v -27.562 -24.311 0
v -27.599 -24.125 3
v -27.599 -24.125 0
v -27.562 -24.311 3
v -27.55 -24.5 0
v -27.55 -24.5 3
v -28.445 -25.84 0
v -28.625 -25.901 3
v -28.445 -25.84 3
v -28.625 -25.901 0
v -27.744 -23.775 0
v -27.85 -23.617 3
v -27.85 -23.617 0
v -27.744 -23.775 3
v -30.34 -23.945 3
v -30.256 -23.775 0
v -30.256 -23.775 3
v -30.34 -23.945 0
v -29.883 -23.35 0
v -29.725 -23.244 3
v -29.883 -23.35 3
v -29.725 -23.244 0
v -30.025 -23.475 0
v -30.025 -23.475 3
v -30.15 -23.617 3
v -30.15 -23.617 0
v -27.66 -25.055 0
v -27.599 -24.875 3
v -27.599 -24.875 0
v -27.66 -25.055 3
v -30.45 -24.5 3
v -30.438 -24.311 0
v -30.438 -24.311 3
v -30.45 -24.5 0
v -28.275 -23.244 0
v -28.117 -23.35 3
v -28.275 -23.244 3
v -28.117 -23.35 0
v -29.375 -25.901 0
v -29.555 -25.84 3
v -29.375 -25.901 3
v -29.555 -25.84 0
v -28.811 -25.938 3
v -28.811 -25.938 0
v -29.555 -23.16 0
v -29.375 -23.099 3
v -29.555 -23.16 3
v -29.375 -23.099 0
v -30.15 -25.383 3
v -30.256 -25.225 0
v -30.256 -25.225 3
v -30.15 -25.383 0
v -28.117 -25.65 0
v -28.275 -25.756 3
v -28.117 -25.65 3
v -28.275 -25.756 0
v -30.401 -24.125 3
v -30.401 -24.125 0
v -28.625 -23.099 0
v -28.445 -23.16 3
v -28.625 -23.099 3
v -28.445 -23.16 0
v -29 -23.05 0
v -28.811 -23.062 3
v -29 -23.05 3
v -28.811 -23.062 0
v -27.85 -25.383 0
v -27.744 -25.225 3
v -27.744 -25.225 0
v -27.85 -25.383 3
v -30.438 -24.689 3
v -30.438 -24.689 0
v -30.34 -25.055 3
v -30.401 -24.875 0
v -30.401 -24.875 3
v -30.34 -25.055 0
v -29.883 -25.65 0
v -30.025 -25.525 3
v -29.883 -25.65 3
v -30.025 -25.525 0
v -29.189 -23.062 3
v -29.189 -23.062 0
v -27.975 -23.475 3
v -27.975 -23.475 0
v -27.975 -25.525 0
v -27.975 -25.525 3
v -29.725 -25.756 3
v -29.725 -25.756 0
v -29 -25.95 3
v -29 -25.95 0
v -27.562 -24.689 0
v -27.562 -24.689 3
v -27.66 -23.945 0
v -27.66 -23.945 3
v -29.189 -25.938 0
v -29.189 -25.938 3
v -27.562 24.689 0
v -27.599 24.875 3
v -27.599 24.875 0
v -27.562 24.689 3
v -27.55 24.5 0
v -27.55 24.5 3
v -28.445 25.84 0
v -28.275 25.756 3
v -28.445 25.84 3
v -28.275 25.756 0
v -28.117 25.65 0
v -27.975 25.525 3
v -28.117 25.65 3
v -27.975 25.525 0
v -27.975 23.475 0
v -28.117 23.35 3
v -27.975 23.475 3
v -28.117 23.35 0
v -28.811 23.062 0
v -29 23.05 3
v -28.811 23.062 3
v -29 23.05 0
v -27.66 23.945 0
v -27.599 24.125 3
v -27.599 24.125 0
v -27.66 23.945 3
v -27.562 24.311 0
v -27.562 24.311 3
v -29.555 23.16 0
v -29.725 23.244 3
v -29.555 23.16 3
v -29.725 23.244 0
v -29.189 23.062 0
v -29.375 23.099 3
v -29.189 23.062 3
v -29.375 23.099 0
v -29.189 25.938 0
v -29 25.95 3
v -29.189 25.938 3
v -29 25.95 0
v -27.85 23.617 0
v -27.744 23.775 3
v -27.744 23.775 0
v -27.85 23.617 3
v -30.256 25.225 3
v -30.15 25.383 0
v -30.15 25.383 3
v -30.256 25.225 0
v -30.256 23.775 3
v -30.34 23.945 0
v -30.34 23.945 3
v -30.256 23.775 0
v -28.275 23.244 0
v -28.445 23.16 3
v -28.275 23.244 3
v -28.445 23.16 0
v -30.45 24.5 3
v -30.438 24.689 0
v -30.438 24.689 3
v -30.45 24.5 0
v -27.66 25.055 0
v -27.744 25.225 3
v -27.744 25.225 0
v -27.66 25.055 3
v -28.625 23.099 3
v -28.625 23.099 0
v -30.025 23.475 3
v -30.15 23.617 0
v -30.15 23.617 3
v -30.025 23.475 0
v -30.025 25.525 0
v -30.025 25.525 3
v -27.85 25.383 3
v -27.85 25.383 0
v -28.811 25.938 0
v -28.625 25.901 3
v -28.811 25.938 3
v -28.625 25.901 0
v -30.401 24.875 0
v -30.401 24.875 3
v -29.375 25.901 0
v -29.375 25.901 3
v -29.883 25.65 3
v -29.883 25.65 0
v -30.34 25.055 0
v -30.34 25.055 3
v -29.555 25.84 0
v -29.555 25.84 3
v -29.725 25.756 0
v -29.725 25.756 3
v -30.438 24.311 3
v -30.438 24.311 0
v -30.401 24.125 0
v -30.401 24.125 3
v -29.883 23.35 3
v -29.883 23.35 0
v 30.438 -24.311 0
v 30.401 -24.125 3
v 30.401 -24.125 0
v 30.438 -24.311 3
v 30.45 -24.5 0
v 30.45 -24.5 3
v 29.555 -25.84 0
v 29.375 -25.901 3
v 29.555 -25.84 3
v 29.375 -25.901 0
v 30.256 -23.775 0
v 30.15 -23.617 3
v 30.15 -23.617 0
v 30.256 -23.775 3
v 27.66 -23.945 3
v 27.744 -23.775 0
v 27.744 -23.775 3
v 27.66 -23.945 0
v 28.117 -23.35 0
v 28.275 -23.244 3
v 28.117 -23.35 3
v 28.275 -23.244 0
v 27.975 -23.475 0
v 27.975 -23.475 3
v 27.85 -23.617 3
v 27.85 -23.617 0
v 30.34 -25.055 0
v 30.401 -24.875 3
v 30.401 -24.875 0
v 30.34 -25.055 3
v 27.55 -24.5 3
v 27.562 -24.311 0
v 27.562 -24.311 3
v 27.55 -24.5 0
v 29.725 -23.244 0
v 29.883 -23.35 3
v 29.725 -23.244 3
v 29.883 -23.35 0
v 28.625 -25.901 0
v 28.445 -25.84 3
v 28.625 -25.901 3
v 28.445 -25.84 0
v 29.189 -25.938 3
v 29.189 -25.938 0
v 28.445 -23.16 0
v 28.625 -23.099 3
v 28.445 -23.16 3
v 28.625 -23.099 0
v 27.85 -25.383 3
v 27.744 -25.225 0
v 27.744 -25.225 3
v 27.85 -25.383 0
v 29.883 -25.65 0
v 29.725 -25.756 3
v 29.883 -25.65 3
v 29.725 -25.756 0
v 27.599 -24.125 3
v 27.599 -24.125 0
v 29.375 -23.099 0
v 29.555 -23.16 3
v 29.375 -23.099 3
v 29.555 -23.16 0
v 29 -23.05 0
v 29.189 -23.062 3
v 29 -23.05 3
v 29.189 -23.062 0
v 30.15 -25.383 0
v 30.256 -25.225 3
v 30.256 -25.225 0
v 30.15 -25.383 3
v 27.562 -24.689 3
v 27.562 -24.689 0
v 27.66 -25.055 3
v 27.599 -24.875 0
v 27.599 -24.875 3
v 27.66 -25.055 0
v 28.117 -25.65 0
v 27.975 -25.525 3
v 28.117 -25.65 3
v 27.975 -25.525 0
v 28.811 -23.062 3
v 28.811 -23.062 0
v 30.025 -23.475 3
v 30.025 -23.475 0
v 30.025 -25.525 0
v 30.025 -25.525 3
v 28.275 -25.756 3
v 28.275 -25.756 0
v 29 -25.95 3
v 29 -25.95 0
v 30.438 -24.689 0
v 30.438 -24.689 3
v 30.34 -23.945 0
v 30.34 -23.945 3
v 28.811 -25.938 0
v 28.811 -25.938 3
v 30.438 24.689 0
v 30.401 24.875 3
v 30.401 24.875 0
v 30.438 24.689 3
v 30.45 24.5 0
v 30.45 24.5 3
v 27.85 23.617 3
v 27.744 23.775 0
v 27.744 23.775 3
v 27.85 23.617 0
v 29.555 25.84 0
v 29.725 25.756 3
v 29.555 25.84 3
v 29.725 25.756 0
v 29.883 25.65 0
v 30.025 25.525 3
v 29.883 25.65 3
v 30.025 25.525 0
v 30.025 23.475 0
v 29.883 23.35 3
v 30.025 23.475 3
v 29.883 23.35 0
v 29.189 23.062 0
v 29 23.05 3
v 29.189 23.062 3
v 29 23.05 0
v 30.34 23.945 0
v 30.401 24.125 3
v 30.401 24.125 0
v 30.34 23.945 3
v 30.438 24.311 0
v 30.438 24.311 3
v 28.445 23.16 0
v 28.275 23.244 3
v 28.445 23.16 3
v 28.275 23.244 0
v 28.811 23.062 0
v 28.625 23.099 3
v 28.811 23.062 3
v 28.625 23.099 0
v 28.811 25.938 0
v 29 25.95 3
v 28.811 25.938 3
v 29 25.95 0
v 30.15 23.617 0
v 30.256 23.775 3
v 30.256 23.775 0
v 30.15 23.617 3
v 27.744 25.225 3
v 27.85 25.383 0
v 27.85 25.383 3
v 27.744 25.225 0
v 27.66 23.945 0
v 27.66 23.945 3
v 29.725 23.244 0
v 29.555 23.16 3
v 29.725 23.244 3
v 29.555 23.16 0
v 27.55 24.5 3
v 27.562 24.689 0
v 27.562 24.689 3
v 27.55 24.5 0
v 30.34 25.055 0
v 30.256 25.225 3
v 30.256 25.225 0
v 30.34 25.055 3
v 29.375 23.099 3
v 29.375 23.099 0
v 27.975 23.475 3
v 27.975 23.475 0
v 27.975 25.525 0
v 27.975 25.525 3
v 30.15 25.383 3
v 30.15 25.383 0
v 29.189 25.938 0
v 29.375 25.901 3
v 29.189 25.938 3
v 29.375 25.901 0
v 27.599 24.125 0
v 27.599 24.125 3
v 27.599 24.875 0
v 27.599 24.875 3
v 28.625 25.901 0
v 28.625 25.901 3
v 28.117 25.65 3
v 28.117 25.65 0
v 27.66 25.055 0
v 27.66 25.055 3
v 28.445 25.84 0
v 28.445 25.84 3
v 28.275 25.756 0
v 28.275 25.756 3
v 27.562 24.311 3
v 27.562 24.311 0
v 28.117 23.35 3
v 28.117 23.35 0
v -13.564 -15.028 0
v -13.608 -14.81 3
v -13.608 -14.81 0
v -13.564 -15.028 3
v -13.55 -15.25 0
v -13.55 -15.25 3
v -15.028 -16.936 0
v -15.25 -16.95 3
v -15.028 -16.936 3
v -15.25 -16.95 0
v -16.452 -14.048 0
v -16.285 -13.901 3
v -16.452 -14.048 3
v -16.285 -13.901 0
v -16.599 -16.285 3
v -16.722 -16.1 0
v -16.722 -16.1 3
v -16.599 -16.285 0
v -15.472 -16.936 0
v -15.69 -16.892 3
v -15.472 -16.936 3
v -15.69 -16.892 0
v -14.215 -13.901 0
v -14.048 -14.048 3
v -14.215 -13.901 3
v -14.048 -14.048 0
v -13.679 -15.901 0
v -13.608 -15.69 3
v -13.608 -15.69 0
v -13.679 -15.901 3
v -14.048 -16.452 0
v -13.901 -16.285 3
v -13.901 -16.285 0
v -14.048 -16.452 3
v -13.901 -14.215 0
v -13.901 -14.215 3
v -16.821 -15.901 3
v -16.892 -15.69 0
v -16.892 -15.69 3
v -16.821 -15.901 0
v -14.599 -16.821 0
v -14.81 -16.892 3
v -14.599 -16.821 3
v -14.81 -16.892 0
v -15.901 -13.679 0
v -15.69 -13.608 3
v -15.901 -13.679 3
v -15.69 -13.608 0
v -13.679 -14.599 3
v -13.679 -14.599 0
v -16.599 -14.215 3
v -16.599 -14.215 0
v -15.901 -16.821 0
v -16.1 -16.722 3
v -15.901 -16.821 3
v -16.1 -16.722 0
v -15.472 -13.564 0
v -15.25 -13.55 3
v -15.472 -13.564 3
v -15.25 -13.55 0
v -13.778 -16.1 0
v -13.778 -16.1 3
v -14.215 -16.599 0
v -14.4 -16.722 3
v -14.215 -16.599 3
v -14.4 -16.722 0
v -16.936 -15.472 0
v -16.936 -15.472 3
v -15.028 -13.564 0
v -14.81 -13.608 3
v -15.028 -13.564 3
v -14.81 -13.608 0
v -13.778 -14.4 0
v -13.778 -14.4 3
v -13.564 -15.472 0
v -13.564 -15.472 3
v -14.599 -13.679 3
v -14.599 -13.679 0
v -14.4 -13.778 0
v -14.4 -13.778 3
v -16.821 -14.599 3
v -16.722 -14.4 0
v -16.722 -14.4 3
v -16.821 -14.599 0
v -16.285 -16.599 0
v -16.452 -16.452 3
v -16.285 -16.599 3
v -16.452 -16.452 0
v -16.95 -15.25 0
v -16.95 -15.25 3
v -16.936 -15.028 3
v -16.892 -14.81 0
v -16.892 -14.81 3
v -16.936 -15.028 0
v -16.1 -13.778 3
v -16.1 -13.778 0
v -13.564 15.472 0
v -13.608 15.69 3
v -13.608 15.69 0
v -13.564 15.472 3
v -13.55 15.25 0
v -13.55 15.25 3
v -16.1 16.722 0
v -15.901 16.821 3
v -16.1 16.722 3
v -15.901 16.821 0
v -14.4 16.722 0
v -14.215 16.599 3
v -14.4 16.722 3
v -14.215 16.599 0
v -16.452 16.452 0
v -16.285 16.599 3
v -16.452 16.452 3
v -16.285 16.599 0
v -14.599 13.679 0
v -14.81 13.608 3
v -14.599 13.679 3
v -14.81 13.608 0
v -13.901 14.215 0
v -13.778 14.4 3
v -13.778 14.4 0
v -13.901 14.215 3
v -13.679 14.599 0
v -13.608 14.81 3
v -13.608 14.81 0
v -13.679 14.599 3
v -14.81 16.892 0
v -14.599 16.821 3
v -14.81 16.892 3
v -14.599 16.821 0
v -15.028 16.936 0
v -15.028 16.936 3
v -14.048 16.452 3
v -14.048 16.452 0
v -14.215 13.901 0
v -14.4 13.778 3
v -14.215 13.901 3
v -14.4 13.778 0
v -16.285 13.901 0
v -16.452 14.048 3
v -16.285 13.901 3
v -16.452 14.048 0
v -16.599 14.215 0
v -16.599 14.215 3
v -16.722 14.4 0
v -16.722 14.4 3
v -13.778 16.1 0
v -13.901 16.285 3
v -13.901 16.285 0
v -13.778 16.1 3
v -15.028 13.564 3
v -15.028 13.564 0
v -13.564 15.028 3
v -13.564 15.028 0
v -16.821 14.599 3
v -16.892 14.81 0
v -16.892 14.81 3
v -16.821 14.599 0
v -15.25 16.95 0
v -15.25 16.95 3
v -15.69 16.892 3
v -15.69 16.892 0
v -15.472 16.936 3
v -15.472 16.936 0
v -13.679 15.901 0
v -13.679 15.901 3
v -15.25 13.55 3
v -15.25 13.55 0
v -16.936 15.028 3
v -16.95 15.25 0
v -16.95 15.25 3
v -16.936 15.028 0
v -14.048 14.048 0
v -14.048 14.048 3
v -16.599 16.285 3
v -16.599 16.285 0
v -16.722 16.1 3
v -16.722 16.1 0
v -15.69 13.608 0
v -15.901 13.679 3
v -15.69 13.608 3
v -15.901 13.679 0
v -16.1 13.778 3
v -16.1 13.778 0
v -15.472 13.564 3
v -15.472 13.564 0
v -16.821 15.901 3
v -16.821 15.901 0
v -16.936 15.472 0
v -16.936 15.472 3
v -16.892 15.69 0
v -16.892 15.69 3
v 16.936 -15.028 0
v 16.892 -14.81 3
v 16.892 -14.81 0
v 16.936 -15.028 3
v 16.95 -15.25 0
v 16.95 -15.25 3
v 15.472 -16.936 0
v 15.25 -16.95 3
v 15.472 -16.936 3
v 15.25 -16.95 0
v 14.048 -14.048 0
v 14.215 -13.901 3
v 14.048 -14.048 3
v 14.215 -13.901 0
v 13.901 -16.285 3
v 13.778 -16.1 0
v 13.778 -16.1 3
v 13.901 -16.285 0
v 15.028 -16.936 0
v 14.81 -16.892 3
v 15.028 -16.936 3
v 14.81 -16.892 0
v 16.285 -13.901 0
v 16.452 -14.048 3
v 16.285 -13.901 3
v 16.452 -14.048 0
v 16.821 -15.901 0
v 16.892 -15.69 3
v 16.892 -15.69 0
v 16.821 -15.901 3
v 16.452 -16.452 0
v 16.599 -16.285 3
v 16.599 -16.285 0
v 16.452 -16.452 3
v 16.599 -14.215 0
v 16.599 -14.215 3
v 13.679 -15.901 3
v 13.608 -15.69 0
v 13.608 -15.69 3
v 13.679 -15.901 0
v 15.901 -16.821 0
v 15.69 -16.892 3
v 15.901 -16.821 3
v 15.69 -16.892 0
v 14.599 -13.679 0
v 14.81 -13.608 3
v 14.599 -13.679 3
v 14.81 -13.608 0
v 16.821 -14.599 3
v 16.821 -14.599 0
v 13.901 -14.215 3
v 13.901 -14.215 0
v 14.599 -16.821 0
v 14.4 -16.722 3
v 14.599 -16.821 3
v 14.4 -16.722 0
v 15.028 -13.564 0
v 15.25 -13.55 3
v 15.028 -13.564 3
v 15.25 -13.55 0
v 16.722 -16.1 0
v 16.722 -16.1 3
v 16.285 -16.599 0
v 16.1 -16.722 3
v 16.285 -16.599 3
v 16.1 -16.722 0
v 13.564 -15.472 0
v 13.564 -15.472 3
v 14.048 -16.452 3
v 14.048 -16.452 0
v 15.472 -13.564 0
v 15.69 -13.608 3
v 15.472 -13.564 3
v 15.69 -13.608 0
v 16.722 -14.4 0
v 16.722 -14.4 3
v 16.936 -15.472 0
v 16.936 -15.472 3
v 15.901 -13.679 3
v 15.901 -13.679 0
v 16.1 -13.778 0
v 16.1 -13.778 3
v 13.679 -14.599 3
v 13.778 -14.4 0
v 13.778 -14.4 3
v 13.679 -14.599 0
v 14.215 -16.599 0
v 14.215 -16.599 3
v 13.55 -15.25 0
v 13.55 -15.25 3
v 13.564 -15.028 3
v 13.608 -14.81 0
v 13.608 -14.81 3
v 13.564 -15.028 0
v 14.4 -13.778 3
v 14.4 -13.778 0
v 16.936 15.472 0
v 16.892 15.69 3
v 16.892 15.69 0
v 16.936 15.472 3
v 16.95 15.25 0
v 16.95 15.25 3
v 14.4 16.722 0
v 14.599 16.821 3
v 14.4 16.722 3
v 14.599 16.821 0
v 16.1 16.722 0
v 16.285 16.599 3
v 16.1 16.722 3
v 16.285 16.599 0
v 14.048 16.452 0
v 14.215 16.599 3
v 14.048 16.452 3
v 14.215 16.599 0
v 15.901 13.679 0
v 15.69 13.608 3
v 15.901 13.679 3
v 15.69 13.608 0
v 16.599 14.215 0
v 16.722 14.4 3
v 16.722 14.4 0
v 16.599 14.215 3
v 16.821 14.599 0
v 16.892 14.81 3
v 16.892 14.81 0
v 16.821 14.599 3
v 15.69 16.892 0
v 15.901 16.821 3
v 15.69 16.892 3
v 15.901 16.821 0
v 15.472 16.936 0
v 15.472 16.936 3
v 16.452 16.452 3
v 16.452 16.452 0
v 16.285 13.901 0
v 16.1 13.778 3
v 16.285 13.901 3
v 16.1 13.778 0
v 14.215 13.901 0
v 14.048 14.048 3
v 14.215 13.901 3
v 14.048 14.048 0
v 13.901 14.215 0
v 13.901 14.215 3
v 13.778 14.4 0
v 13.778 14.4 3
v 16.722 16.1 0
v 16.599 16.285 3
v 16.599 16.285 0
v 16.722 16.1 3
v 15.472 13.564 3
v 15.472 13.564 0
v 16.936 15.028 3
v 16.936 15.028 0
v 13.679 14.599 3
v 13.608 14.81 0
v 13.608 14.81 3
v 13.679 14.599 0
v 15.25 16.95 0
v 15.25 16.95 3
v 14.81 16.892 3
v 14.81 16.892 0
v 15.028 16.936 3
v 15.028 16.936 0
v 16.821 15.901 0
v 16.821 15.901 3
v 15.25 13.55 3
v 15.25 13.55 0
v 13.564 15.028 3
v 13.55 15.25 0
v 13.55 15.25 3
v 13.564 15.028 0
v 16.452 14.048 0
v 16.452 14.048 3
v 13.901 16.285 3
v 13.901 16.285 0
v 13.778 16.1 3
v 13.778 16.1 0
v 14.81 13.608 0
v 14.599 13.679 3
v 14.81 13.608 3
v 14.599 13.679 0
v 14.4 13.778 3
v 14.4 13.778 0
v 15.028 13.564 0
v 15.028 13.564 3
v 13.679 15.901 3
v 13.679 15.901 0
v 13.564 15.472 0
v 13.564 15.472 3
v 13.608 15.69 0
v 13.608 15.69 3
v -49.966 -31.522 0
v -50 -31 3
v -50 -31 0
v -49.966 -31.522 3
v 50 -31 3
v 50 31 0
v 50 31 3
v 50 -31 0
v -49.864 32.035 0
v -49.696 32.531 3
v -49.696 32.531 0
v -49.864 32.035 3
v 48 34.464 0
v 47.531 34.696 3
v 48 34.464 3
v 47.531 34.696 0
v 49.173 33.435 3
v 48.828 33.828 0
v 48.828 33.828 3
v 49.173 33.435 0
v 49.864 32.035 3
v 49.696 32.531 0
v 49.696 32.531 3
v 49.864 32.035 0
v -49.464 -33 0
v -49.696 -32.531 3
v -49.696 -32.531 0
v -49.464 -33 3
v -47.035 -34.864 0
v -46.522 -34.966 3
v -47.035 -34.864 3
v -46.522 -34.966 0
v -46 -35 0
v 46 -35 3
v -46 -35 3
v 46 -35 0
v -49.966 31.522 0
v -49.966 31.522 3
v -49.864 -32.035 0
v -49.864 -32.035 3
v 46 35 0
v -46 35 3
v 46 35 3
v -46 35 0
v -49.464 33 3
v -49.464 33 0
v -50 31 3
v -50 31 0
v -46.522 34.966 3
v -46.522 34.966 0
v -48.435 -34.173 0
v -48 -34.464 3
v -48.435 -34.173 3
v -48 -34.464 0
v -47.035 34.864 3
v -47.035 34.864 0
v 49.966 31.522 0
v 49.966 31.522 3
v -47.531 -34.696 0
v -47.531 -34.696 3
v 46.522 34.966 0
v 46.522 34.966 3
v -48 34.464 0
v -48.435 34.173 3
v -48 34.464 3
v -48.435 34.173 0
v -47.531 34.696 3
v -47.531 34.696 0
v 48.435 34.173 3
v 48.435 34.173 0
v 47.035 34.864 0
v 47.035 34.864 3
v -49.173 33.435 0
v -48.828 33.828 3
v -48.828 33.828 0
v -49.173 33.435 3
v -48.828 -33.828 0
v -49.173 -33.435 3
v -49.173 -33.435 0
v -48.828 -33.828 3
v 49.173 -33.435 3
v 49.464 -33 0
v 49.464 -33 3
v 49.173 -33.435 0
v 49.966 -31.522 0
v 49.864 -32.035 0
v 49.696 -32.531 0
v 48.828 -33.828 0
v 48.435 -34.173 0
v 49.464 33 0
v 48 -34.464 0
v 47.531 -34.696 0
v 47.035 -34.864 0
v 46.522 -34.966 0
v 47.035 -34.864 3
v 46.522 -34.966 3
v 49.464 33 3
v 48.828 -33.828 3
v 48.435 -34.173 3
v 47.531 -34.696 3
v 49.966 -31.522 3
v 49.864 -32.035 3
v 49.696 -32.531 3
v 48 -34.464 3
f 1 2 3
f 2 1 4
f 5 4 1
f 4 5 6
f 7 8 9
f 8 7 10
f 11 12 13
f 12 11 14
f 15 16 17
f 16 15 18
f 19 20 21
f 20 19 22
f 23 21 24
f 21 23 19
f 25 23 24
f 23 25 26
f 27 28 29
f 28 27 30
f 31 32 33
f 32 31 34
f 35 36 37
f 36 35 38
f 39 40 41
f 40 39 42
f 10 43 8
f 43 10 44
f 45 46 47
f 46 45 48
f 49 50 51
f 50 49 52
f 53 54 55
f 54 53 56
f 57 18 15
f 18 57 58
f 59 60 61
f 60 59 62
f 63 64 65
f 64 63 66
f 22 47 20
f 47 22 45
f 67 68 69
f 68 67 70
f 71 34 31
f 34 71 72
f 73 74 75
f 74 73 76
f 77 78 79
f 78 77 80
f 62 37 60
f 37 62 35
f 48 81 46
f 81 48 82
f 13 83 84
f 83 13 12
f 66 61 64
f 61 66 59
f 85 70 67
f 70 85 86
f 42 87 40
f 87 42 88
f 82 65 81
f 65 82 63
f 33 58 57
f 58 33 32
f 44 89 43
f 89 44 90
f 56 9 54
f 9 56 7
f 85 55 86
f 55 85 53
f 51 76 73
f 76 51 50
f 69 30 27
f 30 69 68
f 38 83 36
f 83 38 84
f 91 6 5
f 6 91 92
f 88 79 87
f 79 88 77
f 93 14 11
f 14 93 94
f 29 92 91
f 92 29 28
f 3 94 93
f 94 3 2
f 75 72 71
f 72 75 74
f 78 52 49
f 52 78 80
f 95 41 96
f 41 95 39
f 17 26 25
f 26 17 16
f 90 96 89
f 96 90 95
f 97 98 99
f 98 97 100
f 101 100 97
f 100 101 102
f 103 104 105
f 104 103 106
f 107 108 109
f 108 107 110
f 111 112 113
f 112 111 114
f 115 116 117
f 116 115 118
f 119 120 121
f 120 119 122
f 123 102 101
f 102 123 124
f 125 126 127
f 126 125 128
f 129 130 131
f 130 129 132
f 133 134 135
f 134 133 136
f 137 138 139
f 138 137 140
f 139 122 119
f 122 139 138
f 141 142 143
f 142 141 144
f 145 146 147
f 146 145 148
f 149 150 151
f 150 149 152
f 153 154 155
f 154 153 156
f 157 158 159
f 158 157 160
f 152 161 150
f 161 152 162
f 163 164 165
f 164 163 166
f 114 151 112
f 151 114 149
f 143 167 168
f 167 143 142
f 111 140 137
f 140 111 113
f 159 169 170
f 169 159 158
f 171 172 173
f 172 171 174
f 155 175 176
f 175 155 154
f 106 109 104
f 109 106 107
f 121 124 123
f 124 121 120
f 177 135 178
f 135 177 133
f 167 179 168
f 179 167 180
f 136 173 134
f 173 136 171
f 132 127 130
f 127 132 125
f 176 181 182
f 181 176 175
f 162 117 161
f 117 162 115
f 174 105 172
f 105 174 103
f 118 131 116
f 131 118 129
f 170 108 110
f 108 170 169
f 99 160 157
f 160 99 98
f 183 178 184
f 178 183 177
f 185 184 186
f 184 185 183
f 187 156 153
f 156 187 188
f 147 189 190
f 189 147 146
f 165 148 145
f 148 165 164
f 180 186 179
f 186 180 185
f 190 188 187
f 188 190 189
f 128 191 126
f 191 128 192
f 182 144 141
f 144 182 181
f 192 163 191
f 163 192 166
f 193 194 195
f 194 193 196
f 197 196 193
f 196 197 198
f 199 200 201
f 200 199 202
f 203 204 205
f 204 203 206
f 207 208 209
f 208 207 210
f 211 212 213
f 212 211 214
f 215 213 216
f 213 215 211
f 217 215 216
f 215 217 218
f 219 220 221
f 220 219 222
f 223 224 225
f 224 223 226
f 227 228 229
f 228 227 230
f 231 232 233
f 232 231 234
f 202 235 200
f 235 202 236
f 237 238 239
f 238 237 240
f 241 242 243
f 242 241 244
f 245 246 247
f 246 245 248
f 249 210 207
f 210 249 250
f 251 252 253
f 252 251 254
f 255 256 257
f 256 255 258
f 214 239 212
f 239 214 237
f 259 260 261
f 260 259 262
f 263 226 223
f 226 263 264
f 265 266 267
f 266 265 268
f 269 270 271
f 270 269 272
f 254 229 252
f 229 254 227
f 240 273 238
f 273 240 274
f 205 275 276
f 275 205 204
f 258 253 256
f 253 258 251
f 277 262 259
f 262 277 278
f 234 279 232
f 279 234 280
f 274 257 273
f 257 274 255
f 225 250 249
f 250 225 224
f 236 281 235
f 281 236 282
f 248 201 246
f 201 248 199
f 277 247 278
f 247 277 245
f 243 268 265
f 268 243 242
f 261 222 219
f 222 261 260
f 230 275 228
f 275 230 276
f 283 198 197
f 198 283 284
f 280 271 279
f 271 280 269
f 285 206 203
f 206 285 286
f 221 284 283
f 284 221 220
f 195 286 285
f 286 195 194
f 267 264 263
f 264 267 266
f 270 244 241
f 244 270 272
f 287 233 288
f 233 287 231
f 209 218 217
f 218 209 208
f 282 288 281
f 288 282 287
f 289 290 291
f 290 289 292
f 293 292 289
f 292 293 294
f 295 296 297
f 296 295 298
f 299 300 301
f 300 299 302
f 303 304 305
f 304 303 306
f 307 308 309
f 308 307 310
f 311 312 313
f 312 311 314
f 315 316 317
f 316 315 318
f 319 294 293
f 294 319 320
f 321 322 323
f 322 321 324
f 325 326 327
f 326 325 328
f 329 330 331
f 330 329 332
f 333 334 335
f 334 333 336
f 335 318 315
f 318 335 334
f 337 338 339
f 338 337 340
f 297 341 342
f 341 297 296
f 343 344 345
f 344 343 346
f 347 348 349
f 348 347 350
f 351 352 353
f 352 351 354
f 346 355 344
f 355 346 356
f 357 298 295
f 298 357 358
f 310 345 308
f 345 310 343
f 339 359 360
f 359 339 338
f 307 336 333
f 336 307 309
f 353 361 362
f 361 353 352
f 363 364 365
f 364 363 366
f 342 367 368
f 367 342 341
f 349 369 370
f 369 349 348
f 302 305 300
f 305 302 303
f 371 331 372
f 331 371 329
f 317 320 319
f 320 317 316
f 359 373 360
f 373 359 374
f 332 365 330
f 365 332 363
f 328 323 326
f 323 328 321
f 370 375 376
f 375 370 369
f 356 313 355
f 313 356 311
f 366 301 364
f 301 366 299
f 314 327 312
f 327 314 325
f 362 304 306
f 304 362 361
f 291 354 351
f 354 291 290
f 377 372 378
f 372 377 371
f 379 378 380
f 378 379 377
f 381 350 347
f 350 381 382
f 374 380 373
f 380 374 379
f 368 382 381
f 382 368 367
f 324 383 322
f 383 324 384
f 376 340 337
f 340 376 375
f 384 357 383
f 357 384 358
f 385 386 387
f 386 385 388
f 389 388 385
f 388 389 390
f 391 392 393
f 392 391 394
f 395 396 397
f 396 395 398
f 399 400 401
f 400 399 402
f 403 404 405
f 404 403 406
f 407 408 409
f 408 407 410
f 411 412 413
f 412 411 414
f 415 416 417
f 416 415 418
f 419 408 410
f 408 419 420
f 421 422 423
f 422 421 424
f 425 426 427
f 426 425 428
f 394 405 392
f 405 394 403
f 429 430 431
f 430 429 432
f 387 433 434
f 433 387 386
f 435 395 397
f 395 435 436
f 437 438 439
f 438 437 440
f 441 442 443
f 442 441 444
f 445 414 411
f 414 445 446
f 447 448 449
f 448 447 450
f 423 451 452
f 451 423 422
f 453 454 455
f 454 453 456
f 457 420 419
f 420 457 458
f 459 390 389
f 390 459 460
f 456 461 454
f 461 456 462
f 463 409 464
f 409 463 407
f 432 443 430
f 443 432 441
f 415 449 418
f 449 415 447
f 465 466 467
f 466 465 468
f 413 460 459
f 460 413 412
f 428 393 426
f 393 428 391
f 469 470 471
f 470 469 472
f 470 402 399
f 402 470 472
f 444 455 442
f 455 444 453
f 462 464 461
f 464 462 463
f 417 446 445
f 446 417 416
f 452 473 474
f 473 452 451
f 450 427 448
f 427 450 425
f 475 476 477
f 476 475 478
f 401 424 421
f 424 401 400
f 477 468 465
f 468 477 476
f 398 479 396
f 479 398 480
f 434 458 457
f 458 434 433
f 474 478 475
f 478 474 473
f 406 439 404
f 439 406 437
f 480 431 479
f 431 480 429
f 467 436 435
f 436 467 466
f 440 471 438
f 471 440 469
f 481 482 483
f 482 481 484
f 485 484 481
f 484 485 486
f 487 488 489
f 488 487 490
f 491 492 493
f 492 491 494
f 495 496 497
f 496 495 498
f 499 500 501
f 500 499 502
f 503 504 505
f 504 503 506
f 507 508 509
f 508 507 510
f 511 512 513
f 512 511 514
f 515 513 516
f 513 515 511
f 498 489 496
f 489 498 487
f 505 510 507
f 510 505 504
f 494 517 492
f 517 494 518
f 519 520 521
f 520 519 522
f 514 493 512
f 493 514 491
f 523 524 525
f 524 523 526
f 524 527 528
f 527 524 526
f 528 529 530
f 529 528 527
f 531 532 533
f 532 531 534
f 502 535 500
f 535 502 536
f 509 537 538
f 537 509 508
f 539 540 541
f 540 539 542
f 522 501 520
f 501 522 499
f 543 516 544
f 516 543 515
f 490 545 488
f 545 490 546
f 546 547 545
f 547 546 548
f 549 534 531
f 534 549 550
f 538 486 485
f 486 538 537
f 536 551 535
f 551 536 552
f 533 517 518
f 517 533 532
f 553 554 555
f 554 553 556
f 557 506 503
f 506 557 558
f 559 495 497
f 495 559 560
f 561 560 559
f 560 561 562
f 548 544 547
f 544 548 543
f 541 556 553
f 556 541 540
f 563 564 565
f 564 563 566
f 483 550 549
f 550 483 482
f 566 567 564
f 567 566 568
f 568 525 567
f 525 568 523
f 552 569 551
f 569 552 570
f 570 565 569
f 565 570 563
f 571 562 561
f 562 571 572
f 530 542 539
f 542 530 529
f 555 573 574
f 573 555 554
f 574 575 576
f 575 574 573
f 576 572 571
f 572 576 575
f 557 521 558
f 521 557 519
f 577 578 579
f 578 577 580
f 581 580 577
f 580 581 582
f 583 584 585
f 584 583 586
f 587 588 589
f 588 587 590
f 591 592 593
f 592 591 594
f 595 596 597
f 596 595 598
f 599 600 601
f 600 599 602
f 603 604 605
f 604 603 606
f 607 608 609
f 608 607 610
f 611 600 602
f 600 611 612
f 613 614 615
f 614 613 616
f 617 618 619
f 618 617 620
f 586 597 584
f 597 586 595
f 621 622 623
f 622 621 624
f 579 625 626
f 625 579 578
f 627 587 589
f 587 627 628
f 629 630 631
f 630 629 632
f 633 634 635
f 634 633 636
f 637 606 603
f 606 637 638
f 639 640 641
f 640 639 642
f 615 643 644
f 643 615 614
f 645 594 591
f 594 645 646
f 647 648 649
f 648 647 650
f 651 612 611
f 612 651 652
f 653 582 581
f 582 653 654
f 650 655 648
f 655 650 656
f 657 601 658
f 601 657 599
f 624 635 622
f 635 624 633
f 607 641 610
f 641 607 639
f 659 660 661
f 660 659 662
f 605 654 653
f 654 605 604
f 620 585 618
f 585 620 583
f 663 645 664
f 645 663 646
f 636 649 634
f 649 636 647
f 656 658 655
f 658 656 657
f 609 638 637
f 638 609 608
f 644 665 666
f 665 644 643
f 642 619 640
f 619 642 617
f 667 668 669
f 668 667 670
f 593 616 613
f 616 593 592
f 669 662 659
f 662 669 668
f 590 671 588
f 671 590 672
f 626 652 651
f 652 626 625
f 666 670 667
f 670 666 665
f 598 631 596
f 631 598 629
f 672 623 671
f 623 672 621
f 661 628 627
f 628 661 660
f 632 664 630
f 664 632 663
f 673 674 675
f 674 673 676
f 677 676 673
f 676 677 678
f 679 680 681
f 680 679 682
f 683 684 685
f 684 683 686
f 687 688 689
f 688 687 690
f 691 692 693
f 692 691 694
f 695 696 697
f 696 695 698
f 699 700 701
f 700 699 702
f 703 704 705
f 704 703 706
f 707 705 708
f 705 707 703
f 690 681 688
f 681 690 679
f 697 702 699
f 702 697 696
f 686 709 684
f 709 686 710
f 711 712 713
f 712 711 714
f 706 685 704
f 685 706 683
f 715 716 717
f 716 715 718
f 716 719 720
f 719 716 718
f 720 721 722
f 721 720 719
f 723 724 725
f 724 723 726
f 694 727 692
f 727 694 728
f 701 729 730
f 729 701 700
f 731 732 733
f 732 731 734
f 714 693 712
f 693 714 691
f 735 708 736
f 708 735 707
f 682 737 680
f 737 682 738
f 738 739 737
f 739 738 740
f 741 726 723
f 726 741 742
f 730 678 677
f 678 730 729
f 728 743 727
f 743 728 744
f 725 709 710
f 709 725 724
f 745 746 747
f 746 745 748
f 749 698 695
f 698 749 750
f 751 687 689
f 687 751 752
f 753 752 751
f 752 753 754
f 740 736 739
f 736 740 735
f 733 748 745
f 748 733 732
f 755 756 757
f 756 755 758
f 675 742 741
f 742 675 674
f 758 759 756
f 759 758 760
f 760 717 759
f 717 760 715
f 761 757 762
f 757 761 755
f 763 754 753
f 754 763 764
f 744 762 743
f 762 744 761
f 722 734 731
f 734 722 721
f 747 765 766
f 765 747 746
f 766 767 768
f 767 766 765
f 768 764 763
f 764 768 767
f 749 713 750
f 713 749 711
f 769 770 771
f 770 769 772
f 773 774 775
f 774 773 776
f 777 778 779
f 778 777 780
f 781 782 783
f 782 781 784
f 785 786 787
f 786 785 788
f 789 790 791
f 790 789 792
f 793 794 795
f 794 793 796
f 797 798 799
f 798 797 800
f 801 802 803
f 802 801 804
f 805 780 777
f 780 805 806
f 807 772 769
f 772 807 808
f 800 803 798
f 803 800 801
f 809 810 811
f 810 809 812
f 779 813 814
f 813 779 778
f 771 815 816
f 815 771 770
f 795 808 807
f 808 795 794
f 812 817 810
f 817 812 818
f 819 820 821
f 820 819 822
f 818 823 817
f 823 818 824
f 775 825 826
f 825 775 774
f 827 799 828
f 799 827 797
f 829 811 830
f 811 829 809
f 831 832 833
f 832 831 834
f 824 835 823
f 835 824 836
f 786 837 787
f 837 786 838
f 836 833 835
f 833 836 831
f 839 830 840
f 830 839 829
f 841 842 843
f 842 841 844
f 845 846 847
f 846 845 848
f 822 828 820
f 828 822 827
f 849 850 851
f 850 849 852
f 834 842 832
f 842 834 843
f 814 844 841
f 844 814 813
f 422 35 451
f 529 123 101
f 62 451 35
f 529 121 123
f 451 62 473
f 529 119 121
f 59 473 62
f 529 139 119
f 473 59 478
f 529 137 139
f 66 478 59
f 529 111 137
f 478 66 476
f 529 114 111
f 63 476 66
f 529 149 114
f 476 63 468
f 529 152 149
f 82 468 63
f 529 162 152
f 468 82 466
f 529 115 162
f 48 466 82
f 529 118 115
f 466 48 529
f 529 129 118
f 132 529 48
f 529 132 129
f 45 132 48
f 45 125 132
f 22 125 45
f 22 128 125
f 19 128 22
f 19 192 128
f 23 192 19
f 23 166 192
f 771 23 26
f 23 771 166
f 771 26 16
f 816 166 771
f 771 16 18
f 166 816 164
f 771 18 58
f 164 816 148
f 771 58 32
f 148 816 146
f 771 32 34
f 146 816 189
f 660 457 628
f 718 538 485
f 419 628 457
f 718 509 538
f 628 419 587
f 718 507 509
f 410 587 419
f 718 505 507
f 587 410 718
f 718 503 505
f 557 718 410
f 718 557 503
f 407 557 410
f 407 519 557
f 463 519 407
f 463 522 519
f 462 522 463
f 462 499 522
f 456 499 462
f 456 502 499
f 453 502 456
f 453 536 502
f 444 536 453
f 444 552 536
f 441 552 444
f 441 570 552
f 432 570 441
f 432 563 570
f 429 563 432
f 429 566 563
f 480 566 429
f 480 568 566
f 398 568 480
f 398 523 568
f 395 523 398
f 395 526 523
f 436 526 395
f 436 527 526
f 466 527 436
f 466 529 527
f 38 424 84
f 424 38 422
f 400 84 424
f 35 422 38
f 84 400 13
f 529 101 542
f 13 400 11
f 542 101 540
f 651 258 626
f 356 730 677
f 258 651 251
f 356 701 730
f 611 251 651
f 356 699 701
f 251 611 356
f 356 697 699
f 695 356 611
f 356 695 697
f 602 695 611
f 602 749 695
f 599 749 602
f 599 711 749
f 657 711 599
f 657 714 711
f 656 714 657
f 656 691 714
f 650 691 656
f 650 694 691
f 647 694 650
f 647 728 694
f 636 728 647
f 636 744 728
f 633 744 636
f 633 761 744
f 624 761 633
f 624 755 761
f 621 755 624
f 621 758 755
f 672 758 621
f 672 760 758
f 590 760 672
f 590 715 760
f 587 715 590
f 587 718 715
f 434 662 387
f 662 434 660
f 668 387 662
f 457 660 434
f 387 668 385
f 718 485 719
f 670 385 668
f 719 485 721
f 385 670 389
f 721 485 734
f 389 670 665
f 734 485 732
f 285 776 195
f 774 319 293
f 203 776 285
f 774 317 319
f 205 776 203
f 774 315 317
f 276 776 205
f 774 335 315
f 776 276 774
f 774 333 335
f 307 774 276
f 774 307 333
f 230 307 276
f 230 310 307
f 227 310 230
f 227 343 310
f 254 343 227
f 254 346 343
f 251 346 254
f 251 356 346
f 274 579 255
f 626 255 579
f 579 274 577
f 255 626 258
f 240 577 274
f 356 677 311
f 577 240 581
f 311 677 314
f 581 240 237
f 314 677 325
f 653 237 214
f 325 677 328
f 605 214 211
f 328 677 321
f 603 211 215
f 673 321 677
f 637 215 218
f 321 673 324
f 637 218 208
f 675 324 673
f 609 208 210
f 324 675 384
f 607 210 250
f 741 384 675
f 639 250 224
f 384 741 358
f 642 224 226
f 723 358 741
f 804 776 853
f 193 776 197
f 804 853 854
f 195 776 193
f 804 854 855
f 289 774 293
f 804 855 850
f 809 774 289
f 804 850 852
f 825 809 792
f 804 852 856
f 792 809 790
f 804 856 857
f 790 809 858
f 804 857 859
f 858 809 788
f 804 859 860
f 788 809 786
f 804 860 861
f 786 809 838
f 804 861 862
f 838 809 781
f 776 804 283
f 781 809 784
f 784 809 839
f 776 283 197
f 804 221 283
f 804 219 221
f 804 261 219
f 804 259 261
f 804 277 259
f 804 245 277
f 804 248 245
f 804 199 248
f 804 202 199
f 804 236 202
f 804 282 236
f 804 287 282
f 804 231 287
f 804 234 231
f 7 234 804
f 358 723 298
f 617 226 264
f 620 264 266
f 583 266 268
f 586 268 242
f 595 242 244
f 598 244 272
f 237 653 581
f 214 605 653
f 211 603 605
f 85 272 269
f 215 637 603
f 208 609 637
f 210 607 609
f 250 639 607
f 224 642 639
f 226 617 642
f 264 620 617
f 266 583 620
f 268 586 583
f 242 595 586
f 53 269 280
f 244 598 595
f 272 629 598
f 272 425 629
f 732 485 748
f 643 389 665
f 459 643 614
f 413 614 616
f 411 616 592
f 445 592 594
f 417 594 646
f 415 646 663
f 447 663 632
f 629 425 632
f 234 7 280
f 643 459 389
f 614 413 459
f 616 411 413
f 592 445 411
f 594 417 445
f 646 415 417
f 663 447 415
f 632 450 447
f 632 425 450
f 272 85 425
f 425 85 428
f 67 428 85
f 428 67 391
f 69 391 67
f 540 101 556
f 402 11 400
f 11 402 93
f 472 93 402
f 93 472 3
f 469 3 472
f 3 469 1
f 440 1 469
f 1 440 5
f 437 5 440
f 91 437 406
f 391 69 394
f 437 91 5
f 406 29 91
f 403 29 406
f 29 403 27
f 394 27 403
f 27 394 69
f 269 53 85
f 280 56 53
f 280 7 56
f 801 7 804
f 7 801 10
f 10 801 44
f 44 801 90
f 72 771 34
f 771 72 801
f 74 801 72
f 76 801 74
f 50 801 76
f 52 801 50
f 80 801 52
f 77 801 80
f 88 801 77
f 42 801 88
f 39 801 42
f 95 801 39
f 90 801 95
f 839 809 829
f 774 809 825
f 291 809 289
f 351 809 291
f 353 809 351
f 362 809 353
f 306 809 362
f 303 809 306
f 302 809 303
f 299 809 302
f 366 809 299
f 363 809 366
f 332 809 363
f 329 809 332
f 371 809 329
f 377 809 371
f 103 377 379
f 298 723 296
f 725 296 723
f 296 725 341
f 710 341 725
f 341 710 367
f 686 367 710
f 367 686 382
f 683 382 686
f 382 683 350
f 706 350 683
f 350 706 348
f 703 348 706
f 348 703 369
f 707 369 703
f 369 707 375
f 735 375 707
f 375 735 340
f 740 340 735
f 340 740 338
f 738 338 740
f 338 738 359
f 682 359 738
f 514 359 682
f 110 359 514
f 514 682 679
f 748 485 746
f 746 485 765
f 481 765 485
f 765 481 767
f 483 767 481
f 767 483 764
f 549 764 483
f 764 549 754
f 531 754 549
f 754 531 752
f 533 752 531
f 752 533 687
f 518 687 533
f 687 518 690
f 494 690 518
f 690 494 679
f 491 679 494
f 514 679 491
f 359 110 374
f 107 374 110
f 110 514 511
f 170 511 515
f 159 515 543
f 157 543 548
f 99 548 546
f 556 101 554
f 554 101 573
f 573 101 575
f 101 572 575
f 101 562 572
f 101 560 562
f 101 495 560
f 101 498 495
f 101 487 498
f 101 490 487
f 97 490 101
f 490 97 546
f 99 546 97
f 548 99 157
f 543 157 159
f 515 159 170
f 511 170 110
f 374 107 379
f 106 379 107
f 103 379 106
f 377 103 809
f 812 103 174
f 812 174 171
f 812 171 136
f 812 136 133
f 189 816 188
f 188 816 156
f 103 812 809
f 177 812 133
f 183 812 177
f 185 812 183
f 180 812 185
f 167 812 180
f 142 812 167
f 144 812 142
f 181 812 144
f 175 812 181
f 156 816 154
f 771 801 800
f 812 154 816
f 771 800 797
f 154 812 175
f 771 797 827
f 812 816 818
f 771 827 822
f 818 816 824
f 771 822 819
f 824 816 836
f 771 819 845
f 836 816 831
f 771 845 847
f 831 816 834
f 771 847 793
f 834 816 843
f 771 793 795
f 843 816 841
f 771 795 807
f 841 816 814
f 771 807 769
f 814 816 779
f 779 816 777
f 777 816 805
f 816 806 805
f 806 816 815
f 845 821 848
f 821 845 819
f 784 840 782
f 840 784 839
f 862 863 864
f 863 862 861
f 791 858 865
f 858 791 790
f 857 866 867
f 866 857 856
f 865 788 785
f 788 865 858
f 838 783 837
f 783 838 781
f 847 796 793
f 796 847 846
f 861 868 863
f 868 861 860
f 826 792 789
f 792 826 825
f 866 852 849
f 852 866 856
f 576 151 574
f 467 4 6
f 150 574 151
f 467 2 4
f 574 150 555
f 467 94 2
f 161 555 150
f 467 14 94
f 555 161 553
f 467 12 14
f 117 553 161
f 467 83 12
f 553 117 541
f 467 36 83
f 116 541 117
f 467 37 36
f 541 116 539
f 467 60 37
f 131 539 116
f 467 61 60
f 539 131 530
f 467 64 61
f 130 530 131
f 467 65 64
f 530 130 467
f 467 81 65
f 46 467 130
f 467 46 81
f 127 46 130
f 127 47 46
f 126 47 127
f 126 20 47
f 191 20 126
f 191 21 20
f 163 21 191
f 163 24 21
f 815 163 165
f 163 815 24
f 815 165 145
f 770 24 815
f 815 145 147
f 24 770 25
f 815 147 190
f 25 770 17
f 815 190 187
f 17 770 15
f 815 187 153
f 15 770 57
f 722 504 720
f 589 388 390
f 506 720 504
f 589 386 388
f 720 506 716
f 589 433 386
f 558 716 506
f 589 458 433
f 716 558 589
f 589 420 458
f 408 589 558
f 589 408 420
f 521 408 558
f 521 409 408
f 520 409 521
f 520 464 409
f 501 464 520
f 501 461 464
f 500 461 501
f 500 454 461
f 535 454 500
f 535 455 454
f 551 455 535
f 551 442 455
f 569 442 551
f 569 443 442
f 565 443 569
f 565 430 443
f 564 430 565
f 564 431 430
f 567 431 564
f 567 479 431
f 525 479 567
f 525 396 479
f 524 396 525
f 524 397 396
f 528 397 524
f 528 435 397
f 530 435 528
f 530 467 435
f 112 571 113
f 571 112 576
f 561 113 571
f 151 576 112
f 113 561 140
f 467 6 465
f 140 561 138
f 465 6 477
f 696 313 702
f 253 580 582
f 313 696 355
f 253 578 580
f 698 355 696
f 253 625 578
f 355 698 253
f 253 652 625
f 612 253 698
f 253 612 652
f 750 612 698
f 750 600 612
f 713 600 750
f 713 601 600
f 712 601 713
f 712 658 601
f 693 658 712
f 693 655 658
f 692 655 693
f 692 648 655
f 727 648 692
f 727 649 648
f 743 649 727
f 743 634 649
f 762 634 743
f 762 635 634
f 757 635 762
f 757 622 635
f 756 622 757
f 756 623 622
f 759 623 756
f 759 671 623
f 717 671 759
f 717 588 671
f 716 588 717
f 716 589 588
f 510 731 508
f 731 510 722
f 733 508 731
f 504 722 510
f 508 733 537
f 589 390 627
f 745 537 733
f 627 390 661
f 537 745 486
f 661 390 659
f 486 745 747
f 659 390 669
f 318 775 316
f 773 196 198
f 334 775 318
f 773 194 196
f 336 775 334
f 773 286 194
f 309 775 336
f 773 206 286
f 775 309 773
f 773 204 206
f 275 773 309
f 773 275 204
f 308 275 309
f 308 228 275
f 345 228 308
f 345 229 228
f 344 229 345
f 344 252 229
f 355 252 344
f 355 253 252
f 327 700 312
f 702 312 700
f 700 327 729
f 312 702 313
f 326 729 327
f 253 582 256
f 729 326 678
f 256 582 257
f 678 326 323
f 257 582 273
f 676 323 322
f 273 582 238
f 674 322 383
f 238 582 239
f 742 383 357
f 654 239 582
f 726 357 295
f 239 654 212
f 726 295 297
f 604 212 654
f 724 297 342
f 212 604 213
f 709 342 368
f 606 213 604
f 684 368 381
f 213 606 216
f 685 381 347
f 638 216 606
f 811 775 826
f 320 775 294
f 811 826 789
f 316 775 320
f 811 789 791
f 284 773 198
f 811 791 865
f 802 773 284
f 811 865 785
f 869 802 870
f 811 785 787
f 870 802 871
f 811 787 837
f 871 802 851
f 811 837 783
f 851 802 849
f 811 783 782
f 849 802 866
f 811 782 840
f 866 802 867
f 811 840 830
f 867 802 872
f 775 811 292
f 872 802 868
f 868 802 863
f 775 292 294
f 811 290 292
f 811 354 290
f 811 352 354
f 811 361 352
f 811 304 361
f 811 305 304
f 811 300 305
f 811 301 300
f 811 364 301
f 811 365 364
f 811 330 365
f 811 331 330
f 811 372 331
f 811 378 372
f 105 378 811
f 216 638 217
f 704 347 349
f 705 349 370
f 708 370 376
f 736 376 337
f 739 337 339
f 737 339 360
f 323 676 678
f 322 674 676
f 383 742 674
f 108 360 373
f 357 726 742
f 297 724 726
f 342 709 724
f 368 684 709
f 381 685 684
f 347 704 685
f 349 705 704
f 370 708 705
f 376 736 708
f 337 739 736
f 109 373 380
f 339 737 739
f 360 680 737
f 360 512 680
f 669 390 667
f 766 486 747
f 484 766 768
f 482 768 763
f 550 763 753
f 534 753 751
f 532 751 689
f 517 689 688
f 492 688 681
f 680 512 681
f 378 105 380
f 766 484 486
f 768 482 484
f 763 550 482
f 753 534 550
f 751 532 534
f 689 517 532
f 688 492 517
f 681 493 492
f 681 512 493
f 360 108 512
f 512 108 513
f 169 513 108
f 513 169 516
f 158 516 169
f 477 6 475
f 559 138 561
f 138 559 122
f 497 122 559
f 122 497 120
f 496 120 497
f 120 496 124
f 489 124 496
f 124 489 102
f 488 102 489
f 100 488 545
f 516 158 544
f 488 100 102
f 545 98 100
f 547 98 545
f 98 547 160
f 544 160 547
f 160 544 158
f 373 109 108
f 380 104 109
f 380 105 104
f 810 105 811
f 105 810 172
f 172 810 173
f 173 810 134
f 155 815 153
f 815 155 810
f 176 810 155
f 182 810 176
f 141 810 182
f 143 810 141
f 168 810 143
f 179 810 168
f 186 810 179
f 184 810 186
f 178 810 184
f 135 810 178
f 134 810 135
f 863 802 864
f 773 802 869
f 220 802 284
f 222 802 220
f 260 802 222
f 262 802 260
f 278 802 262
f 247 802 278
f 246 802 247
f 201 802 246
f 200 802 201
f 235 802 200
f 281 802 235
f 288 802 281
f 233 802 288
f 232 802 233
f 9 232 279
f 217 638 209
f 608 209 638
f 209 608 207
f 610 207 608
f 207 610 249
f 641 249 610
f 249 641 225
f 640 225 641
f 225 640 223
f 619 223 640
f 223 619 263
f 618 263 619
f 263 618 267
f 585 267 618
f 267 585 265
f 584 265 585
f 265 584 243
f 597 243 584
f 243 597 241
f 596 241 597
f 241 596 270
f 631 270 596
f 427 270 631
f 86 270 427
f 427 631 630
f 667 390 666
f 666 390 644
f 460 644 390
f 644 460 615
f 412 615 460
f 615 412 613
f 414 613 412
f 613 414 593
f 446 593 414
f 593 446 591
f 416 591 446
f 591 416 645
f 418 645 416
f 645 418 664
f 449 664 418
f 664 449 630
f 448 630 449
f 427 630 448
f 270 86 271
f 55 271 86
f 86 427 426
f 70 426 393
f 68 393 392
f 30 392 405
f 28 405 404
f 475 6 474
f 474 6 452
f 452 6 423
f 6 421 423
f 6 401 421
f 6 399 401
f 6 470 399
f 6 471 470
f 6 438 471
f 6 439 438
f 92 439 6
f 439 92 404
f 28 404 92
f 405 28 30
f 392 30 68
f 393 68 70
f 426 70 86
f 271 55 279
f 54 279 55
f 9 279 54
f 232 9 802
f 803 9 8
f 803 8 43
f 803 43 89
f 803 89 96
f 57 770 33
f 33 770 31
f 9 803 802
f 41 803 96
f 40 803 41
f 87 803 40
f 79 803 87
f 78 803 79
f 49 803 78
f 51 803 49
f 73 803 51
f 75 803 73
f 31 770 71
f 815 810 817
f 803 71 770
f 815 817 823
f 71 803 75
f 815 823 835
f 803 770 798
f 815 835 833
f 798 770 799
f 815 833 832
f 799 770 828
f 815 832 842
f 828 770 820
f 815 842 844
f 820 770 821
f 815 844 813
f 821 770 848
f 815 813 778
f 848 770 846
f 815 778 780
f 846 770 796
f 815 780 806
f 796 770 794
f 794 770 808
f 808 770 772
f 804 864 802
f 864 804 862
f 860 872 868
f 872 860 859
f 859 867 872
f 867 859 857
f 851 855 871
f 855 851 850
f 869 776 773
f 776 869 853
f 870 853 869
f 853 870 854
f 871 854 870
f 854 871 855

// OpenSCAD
$fn = 48;

// ---- Parameters ----
plate_t     = 3;
deck_len    = 100;
deck_w      = 70;
pi_span_x   = 58;    // Raspberry Pi mounting hole spacing (long axis)
pi_span_y   = 49;    // Raspberry Pi mounting hole spacing (short axis)
pi_hole_d   = 2.9;   // M2.5 clearance
stack_span  = 30.5;  // matches center_plate.scad, same standoffs run top to bottom
stack_hole_d = 3.4;
corner_r    = 4;

module deck() {
    hull() {
        for (x = [-1,1]) for (y = [-1,1])
            translate([x*(deck_len/2-corner_r), y*(deck_w/2-corner_r), 0])
                cylinder(r=corner_r, h=plate_t);
    }
}

module pi_holes() {
    for (x = [-1,1]) for (y = [-1,1])
        translate([x*pi_span_x/2, y*pi_span_y/2, -1])
            cylinder(d=pi_hole_d, h=plate_t+2);
}

module standoff_holes() {
    for (x = [-1,1]) for (y = [-1,1])
        translate([x*stack_span/2, y*stack_span/2, -1])
            cylinder(d=stack_hole_d, h=plate_t+2);
}

difference() {
    deck();
    pi_holes();
    standoff_holes();
}
